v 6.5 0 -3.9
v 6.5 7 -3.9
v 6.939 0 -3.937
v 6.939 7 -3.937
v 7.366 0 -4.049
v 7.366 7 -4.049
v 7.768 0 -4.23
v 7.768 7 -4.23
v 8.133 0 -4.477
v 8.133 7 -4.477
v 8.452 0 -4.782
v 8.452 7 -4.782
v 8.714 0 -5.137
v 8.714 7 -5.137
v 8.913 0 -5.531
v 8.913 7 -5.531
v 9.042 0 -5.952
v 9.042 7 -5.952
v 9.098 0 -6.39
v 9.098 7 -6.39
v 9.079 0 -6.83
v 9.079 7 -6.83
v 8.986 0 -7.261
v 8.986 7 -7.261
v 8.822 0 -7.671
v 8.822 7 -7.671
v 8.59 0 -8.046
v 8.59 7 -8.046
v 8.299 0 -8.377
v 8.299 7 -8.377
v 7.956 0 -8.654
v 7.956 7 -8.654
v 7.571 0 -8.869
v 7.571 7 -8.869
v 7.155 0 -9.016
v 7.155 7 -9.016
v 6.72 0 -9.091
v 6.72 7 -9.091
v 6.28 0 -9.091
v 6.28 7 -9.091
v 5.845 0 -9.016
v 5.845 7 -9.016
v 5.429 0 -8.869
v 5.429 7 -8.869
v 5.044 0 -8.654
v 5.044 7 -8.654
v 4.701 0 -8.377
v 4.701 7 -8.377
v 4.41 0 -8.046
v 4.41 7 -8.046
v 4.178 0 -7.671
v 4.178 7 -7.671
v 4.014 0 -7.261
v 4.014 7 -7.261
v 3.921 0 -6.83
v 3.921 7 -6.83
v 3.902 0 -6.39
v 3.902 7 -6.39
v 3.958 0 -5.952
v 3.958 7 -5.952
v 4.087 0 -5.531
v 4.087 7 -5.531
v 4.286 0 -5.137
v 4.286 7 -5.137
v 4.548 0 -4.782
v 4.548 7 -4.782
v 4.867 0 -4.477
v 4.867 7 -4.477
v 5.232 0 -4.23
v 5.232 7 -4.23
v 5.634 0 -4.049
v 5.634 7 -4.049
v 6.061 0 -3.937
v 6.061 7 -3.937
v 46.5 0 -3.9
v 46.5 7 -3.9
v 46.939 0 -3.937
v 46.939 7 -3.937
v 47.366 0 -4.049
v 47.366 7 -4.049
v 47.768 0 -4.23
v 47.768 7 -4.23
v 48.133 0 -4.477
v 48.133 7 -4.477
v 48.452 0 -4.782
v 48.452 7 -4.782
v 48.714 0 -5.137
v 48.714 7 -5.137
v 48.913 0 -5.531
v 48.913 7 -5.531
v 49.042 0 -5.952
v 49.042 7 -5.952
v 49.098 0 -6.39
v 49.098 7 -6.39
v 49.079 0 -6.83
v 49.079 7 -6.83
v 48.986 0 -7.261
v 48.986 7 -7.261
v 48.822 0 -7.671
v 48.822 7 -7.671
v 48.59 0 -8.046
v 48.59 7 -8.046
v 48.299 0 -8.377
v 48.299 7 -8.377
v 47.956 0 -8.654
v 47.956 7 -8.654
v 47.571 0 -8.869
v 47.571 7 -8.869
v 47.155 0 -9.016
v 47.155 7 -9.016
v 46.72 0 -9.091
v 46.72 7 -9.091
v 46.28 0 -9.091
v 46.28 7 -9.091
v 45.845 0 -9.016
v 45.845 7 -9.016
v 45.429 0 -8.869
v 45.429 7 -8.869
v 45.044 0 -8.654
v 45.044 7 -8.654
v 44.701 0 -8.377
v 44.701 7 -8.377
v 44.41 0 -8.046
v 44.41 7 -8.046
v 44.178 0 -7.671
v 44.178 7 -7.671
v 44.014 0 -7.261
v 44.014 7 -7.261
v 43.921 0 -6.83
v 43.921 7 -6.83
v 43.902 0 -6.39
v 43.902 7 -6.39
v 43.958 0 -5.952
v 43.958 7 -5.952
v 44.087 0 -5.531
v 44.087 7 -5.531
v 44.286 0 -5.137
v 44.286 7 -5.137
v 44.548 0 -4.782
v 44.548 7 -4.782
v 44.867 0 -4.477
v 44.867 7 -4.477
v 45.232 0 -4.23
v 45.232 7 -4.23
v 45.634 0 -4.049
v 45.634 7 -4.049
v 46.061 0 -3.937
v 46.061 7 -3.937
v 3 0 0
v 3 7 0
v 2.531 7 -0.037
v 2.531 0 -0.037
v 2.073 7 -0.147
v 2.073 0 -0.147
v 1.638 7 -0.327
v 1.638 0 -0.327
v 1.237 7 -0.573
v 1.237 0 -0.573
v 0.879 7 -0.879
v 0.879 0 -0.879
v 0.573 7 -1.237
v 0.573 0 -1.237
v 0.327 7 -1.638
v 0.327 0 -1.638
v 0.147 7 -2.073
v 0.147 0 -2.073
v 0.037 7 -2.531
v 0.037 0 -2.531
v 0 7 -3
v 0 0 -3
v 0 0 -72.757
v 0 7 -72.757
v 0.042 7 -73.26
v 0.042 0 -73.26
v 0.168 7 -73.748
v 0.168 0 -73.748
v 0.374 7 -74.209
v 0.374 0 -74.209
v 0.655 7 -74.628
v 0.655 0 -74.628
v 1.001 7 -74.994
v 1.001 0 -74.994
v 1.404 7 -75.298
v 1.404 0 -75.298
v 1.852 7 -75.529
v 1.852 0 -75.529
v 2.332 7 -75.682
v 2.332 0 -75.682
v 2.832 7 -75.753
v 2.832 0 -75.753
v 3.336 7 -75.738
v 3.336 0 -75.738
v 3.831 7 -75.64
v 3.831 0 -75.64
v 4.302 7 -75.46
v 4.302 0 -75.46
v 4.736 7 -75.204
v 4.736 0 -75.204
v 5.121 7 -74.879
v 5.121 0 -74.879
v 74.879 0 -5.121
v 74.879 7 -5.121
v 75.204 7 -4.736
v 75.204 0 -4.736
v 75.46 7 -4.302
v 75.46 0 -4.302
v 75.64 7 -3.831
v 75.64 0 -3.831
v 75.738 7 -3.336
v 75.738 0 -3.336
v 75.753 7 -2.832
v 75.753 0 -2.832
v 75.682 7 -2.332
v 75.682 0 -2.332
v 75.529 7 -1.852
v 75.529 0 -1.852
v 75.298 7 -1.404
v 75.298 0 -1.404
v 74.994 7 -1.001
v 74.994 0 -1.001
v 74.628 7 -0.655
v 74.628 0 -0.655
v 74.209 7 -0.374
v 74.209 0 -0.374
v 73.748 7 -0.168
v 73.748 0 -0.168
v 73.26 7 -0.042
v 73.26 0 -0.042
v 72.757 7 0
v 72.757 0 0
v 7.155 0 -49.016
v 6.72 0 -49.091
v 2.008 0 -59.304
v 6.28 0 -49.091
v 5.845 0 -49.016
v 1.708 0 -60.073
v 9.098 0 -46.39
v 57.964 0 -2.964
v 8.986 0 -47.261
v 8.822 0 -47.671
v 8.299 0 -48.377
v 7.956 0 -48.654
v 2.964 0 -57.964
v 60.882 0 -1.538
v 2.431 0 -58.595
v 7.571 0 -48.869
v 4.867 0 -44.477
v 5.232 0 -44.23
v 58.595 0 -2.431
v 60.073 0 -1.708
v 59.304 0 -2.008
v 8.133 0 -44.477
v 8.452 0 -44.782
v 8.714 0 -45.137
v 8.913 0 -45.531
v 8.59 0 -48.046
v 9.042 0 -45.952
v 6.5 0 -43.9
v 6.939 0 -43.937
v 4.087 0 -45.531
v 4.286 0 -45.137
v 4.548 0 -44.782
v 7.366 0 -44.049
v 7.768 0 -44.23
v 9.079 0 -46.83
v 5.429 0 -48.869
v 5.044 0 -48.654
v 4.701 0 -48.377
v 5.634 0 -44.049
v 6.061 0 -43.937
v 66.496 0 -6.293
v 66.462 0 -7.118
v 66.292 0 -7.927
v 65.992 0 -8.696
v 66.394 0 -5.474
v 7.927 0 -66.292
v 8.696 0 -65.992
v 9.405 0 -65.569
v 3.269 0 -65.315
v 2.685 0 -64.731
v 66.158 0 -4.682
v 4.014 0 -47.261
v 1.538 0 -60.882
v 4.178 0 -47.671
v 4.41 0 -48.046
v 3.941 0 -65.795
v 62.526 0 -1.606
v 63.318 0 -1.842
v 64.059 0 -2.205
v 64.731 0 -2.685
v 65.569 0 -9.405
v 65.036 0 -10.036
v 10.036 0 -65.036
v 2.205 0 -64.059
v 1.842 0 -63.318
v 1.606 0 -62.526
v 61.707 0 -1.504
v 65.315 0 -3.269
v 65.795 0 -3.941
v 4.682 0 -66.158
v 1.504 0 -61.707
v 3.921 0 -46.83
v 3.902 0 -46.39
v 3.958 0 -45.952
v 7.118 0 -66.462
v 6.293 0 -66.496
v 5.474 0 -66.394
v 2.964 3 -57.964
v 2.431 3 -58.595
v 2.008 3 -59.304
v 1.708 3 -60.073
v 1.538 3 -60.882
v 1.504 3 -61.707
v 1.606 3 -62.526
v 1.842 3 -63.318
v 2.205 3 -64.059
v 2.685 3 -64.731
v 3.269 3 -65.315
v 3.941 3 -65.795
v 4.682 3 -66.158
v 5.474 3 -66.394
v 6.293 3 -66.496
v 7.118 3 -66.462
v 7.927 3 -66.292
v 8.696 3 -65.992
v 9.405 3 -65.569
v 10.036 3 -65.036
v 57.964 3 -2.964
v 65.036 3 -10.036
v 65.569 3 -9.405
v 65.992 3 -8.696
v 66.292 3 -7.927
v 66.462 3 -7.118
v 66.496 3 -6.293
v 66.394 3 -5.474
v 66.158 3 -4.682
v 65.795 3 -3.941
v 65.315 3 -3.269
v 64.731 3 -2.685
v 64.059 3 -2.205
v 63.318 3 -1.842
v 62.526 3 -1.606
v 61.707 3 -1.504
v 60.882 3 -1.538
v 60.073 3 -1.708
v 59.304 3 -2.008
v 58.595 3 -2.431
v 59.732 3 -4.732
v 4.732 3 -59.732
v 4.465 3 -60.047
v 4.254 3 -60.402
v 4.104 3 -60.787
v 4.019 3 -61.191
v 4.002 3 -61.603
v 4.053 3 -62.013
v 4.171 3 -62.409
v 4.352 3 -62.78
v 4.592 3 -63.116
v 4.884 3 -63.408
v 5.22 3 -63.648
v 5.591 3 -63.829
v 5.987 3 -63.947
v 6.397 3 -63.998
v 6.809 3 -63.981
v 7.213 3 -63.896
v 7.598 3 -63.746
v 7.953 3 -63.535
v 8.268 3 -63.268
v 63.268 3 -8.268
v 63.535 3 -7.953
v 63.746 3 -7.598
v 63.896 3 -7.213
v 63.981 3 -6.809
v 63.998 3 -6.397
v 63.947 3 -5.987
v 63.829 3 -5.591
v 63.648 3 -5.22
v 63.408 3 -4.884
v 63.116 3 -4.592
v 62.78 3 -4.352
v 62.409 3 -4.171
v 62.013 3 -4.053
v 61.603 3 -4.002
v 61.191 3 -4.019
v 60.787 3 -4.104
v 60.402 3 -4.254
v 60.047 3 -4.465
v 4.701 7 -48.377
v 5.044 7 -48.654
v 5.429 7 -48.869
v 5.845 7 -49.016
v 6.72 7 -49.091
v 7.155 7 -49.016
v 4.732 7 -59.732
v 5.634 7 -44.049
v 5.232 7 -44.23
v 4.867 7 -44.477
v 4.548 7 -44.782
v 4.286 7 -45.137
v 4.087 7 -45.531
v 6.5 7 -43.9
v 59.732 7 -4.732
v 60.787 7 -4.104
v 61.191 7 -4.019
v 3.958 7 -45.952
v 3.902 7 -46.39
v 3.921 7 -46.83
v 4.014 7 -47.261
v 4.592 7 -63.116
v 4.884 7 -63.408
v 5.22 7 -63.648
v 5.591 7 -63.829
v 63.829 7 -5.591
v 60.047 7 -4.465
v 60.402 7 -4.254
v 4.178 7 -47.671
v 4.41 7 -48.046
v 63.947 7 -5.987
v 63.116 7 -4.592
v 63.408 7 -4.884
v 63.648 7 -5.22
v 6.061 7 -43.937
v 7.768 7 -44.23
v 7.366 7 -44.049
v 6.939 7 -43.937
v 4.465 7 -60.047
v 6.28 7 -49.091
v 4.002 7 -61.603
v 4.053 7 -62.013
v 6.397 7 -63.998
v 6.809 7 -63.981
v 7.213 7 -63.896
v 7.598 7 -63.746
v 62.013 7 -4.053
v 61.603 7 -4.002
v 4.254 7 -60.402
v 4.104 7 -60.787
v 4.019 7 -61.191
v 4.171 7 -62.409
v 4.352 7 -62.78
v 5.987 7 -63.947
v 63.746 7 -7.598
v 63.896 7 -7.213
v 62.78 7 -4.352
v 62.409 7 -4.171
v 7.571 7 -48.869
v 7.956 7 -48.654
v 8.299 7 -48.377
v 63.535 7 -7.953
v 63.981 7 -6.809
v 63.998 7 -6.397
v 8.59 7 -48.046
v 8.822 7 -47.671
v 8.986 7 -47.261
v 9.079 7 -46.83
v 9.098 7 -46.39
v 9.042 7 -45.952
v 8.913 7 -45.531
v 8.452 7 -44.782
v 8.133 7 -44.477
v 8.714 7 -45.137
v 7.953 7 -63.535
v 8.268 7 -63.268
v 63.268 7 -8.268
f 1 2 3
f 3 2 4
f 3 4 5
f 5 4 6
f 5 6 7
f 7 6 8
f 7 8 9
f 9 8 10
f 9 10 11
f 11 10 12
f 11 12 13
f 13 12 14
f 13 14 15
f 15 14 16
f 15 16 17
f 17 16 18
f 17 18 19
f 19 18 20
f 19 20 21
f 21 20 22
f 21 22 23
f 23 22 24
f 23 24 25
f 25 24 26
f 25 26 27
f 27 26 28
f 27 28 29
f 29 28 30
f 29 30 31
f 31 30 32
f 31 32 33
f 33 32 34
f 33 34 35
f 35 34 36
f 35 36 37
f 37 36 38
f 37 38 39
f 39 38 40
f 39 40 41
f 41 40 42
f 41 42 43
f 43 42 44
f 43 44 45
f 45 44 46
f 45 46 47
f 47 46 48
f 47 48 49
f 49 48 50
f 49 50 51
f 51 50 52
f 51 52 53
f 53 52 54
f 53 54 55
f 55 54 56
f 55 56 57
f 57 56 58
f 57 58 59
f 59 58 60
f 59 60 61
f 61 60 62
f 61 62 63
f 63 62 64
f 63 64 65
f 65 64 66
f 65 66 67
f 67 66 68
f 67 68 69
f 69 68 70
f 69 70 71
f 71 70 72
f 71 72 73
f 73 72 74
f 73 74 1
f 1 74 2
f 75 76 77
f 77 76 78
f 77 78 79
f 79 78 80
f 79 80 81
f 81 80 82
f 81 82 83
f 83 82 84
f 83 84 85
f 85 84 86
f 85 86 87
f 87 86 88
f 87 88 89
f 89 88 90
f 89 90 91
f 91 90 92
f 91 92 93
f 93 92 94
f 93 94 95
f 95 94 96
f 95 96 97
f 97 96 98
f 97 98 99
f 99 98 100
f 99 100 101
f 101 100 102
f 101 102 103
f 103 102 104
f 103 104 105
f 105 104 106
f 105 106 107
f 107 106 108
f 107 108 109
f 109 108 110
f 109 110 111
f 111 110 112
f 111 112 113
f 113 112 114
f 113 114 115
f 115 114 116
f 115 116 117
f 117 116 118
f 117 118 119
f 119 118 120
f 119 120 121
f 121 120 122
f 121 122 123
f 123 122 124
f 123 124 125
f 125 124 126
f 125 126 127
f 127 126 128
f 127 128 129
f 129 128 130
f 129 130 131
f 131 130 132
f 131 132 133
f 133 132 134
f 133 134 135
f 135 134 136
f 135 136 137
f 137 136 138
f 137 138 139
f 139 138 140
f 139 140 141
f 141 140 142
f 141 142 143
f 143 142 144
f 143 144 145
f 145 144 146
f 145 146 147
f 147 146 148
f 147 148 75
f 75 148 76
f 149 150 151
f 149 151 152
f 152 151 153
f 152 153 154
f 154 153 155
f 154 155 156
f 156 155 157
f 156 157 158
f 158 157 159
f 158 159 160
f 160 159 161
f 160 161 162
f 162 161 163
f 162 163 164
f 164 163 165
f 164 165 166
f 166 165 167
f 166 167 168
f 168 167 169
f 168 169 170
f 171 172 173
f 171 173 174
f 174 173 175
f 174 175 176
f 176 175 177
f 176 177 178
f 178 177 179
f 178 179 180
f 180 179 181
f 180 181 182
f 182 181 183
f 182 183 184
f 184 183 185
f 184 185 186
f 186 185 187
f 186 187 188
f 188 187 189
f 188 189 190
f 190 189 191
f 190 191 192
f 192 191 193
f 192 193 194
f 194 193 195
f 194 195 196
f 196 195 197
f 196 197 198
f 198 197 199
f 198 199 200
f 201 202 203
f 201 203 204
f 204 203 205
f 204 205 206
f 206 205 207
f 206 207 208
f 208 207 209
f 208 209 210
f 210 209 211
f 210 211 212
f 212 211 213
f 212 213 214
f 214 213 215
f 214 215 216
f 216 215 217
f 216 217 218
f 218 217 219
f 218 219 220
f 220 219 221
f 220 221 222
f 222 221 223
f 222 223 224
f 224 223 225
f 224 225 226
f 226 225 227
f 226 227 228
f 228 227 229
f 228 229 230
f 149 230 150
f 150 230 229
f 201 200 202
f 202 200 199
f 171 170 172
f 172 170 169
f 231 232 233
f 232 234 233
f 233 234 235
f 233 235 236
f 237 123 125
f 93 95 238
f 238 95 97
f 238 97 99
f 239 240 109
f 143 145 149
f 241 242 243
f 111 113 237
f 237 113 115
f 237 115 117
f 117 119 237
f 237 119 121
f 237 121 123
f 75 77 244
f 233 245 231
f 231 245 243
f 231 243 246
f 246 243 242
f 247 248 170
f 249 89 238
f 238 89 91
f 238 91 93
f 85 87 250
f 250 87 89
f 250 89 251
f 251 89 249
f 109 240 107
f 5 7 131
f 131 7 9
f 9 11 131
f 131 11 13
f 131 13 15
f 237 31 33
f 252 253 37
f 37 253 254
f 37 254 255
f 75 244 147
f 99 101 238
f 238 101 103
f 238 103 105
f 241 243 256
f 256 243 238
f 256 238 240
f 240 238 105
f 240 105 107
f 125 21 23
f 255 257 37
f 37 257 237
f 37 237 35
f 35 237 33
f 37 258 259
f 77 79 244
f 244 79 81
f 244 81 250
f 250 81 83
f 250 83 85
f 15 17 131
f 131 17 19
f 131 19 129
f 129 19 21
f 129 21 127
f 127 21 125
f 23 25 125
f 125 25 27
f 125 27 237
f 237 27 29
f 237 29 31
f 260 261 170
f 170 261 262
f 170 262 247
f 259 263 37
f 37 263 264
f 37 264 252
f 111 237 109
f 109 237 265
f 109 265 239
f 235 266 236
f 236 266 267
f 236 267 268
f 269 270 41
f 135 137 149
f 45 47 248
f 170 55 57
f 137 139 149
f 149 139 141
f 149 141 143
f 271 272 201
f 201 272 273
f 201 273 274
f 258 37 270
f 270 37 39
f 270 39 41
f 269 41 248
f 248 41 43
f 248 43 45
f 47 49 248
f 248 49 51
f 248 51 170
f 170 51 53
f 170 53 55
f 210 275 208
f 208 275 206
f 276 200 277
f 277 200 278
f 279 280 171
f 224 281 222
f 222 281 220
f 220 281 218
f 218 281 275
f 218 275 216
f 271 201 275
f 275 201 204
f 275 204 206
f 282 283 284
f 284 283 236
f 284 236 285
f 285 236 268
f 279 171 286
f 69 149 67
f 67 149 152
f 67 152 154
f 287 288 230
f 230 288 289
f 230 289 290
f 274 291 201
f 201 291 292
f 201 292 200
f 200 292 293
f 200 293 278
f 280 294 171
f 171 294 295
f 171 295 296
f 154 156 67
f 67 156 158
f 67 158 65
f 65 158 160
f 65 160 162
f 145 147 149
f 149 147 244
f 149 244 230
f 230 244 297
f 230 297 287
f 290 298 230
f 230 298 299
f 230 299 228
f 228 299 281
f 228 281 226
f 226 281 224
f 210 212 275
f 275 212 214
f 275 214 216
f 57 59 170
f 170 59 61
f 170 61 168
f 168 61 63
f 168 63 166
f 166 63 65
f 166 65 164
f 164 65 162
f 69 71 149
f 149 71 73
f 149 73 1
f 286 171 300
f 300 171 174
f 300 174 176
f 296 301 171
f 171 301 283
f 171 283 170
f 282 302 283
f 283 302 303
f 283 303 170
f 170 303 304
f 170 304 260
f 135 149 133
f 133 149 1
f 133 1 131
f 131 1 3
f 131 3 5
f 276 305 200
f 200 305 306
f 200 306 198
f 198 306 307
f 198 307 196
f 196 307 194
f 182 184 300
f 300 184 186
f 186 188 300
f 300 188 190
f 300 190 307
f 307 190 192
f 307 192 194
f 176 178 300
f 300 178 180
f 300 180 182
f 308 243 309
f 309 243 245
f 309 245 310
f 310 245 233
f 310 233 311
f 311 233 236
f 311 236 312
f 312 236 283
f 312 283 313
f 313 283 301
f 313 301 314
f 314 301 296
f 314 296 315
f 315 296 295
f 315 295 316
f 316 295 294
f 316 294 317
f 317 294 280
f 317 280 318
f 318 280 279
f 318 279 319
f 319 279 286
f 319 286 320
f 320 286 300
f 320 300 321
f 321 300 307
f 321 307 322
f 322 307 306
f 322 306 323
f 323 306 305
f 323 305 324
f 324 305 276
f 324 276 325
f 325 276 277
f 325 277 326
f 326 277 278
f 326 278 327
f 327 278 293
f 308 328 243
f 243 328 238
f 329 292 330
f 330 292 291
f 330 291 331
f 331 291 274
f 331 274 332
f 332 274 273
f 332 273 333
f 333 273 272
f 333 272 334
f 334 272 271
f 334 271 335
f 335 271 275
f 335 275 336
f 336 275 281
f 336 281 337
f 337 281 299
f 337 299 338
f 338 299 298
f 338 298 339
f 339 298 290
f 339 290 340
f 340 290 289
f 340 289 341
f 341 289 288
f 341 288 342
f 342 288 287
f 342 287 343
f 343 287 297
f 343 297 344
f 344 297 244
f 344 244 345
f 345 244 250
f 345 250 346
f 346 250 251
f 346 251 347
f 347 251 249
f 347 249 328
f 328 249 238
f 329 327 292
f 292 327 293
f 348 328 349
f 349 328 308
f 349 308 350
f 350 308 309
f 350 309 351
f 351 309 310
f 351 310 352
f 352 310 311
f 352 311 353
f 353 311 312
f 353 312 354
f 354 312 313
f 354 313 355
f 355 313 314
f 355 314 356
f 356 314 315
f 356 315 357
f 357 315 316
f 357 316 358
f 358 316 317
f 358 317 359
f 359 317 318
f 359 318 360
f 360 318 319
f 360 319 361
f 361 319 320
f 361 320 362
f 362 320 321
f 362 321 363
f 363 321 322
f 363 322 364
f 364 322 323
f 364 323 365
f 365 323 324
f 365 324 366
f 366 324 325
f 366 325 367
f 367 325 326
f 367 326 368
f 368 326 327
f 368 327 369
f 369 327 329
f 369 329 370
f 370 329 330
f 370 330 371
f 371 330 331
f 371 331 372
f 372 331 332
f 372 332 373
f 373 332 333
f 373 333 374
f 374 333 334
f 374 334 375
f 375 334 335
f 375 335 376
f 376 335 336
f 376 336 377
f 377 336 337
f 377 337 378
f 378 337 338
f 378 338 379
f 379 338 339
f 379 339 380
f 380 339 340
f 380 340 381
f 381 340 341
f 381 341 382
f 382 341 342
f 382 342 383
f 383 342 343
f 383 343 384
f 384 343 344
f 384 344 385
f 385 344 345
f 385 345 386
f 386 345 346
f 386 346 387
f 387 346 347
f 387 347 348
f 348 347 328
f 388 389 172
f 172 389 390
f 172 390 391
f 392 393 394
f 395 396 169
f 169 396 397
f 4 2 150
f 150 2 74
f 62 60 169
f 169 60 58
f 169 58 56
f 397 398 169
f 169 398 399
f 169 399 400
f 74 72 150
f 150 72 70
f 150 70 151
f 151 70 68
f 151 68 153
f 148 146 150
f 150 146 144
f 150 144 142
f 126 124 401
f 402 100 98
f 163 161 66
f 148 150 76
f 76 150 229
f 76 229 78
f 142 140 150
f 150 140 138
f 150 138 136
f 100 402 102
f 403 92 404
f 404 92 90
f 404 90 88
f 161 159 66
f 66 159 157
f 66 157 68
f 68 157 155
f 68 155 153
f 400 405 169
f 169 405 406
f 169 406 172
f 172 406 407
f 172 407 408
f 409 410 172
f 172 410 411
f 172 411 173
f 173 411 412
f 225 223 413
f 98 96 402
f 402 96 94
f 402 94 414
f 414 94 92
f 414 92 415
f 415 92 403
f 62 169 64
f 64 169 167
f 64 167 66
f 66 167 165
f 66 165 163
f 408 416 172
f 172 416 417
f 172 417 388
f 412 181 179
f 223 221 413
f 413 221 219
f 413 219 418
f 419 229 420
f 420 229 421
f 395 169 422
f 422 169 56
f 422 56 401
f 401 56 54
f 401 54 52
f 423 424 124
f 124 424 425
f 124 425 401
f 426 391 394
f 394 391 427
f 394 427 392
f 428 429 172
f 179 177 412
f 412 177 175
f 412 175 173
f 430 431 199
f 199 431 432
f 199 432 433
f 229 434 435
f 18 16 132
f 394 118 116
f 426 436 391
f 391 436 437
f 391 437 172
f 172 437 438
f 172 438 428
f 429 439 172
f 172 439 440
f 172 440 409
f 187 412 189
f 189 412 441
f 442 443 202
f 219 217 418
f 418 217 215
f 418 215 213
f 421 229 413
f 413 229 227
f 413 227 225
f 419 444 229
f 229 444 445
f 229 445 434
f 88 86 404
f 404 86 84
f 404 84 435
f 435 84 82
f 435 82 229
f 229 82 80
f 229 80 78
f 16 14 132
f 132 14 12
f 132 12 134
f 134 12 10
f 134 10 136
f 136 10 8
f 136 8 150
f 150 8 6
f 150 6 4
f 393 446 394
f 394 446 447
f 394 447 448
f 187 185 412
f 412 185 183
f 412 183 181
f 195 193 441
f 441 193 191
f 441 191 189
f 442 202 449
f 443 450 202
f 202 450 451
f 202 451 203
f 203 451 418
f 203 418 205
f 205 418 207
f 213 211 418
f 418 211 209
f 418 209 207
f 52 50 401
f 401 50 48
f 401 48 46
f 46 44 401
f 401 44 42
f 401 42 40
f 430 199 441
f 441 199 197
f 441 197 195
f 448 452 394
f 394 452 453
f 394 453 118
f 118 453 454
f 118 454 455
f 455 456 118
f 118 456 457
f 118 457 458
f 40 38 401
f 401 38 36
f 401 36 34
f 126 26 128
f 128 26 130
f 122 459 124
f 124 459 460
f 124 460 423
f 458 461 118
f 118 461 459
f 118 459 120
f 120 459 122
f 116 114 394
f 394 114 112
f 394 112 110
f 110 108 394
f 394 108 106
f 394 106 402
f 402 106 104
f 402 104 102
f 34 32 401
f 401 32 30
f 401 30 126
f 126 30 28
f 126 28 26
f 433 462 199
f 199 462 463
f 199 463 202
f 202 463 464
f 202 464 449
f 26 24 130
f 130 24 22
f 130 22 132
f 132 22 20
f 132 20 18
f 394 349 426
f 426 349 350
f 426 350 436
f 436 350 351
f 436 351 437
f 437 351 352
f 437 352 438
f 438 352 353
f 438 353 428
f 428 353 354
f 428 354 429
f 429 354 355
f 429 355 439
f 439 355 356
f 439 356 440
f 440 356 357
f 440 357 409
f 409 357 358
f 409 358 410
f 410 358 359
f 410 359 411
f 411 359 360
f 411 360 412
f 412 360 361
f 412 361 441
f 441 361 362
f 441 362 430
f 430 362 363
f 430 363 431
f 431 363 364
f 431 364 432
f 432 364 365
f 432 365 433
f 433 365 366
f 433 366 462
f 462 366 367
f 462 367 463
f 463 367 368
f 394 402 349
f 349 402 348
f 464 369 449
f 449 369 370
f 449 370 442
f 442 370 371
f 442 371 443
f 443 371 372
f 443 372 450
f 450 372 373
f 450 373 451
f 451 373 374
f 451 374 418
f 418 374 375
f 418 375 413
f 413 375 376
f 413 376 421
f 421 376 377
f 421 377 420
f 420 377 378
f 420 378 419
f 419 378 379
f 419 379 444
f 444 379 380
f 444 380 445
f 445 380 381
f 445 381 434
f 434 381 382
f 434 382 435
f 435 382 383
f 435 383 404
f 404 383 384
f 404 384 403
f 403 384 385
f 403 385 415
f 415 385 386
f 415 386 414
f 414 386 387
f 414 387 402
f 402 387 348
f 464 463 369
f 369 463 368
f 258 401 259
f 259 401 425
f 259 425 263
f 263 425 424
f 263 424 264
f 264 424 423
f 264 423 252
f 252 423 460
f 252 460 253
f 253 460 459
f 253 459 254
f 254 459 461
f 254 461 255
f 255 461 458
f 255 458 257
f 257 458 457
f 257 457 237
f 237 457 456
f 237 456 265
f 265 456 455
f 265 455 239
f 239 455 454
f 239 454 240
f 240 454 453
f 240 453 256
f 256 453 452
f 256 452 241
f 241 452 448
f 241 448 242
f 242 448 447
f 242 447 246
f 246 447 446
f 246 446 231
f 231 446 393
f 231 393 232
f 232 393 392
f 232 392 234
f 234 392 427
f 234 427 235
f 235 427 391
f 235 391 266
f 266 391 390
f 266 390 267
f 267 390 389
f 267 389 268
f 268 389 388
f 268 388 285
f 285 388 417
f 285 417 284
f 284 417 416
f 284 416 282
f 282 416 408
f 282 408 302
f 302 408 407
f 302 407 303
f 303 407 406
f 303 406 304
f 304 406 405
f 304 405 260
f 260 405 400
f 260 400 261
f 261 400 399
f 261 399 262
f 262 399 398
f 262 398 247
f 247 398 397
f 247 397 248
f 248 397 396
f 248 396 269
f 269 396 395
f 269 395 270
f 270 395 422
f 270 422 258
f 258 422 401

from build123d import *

# Parameters (mm, degrees)
EXTRUDE_1_DEPTH      = 10
SKETCH_5_R           = 2.6
CUT_EXTRUDE_3_DEPTH  = 10
FILLET_5_R           = 3
FILLET_6_R           = 3
FILLET_7_R           = 3
SKETCH_7_R           = 5.5
CUT_EXTRUDE_4_DEPTH  = 5
SKETCH_12_R          = 2.553682631
CUT_EXTRUDE_9_DEPTH  = 9
EXTRUDE_2_DEPTH      = 5
CUT_EXTRUDE_START    = 5
SKETCH_14_R          = 5.5
CUT_EXTRUDE_12_DEPTH = 5
EXTRUDE_START        = 5
EXTRUDE_6_DEPTH      = 5
SKETCH_22_R          = 5.5
EXTRUDE_7_DEPTH      = 5
SKETCH_24_R          = 5.5
CUT_EXTRUDE_14_DEPTH = 3
SKETCH_25_R          = 2.65
CUT_EXTRUDE_15_DEPTH = 3
SKETCH_26_R          = 2.65
CUT_EXTRUDE_16_DEPTH = 5
SKETCH_29_R          = 2.65
EXTRUDE_8_DEPTH      = 10
EXTRUDE_START_2      = 3
SKETCH_30_R          = 5.5
EXTRUDE_9_DEPTH      = 3
CUT_EXTRUDE_18_DEPTH = 3
SKETCH_33_R          = 5.5
SKETCH_33_R_2        = 2.6
EXTRUDE_10_DEPTH     = 5
SKETCH_34_W          = 118.655960463
SKETCH_34_H          = 108.474675719
CUT_EXTRUDE_20_DEPTH = 3
CUT_EXTRUDE_21_DEPTH = 108.211729676
SKETCH_36_R          = 2.6
CUT_EXTRUDE_23_DEPTH = 108.365520444


with BuildPart() as part:
    # 草图1 → 凸台-拉伸1 (new body)
    with BuildSketch(Plane(origin=(0, 0, 0), x_dir=(1, 0, 0), z_dir=(0, 1, 0))):
        Polygon((0, 0), (0, 80), (80, 0), align=None)
    extrude(amount=EXTRUDE_1_DEPTH)

    # 草图5 → 切除-拉伸3 (cut)
    with BuildSketch(Plane(origin=(0, 10, 0), x_dir=(1, 0, 0), z_dir=(0, 1, 0))):
        with Locations(Location((6.5, 6.5, 0), (0, 0, 270))):
            Circle(SKETCH_5_R)
        with Locations(Location((6.5, 46.5, 0), (0, 0, 270))):
            Circle(SKETCH_5_R)
        with Locations(Location((46.5, 6.5, 0), (0, 0, 270))):
            Circle(SKETCH_5_R)
    extrude(amount=-CUT_EXTRUDE_3_DEPTH, mode=Mode.SUBTRACT)

    # 圆角5
    fillet_5_edges = [part.edges().sort_by_distance(p)[0] for p in [
        (80, 5, 0),
    ]]
    fillet(fillet_5_edges, radius=FILLET_5_R)

    # 圆角6
    fillet_6_edges = [part.edges().sort_by_distance(p)[0] for p in [
        (0, 5, -80),
    ]]
    fillet(fillet_6_edges, radius=FILLET_6_R)

    # 圆角7
    fillet_7_edges = [part.edges().sort_by_distance(p)[0] for p in [
        (0, 5, 0),
    ]]
    fillet(fillet_7_edges, radius=FILLET_7_R)

    # 草图7 → 切除-拉伸4 (cut)
    with BuildSketch(Plane(origin=(0, 10, 0), x_dir=(1, 0, 0), z_dir=(0, 1, 0))):
        with Locations(Location((6.5, 6.5, 0), (0, 0, 270))):
            Circle(SKETCH_7_R)
        with Locations(Location((6.5, 46.5, 0), (0, 0, 270))):
            Circle(SKETCH_7_R)
        with Locations(Location((46.5, 6.5, 0), (0, 0, 270))):
            Circle(SKETCH_7_R)
    extrude(amount=-CUT_EXTRUDE_4_DEPTH, mode=Mode.SUBTRACT)

    # 草图12 → 切除-拉伸9 (cut)
    with BuildSketch(Plane.XZ):
        with Locations((8.5, -46.5)):
            Circle(SKETCH_12_R)
    extrude(amount=-CUT_EXTRUDE_9_DEPTH, mode=Mode.SUBTRACT)

    # 草图13 → 凸台-拉伸2 (add)
    with BuildSketch(Plane.XZ):
        with BuildLine():
            ThreePointArc((7.559676255, -48.87425488), (5.946317369, -46.5), (7.559676255, -44.12574512))
            ThreePointArc((7.559676255, -44.12574512), (3.9, -46.5), (7.559676255, -48.87425488))
        make_face()
    extrude(amount=-EXTRUDE_2_DEPTH)

    # 草图14 → 切除-拉伸12 (cut)
    with BuildSketch(Plane(origin=(0, 5, 0), x_dir=(1, 0, 0), z_dir=(0, 1, 0)).offset(CUT_EXTRUDE_START)):
        with Locations((8.5, 46.5)):
            Circle(SKETCH_14_R)
        with Locations((6.5, 46.5)):
            Circle(SKETCH_14_R)
    extrude(amount=-CUT_EXTRUDE_12_DEPTH, mode=Mode.SUBTRACT)

    # 草图21 → 凸台-拉伸6 (add)
    with BuildSketch(Plane(origin=(0, 5, 0), x_dir=(1, 0, 0), z_dir=(0, 1, 0)).offset(EXTRUDE_START)):
        with BuildLine():
            ThreePointArc((7.5, 41.091673087), (3, 46.5), (7.5, 51.908326913))
            ThreePointArc((7.5, 51.908326913), (1, 46.5), (7.5, 41.091673087))
        make_face()
    extrude(amount=-EXTRUDE_6_DEPTH)

    # 草图22 → 凸台-拉伸7 (add)
    with BuildSketch(Plane(origin=(0, 5, 0), x_dir=(1, 0, 0), z_dir=(0, 1, 0)).offset(EXTRUDE_START)):
        with Locations((8.5, 46.5)):
            Circle(SKETCH_22_R)
    extrude(amount=-EXTRUDE_7_DEPTH)

    # 草图24 → 切除-拉伸14 (cut)
    with BuildSketch(Plane(origin=(0, 10, 0), x_dir=(1, 0, 0), z_dir=(0, 1, 0))):
        with Locations(Location((8.5, 46.5, 0), (0, 0, 270))):
            Circle(SKETCH_24_R)
    extrude(amount=-CUT_EXTRUDE_14_DEPTH, mode=Mode.SUBTRACT)

    # 草图25 → 切除-拉伸15 (cut)
    with BuildSketch(Plane.XZ.offset(-5)):
        with Locations(Location((8.5, -46.5, 0), (0, 0, 270))):
            Circle(SKETCH_25_R)
    extrude(amount=-CUT_EXTRUDE_15_DEPTH, mode=Mode.SUBTRACT)

    # 草图26 → 切除-拉伸16 (cut)
    with BuildSketch(Plane.XZ):
        with Locations(Location((8.5, -46.5, 0), (0, 0, 270))):
            Circle(SKETCH_26_R)
    extrude(amount=-CUT_EXTRUDE_16_DEPTH, mode=Mode.SUBTRACT)

    # 草图29 → 凸台-拉伸8 (add)
    with BuildSketch(Plane.XZ):
        with Locations(Location((8.5, -46.5, 0), (0, 0, 270))):
            Circle(SKETCH_29_R)
    extrude(amount=-EXTRUDE_8_DEPTH)

    # 草图30 → 凸台-拉伸9 (add)
    with BuildSketch(Plane(origin=(0, 7, 0), x_dir=(1, 0, 0), z_dir=(0, 1, 0)).offset(EXTRUDE_START_2)):
        with Locations((8.5, 46.5)):
            Circle(SKETCH_30_R)
    extrude(amount=-EXTRUDE_9_DEPTH)

    # 草图2 → 切除-拉伸18 (cut)
    with BuildSketch(Plane.XZ):
        with BuildLine():
            ThreePointArc((6.5, -56.5), (8.413417162, -56.880602337), (10.035533906, -57.964466094))
            Line((10.035533906, -57.964466094), (57.964466094, -10.035533906))
            ThreePointArc((57.964466094, -10.035533906), (56.880602337, -8.413417162), (56.5, -6.5))
            Line((56.5, -6.5), (54.428932188, -6.5))
            Line((54.428932188, -6.5), (6.5, -54.428932188))
            Line((6.5, -54.428932188), (6.5, -56.5))
        make_face()
        with BuildLine():
            Line((57.964466094, -10.035533906), (10.035533906, -57.964466094))
            ThreePointArc((10.035533906, -57.964466094), (11.119397663, -59.586582838), (11.5, -61.5))
            ThreePointArc((11.5, -61.5), (11.119397663, -63.413417162), (10.035533906, -65.035533906))
            Line((10.035533906, -65.035533906), (65.035533906, -10.035533906))
            ThreePointArc((65.035533906, -10.035533906), (61.5, -11.5), (57.964466094, -10.035533906))
        make_face()
        with BuildLine():
            Line((6.5, -66.5), (6.5, -61.5))
            Line((6.5, -61.5), (6.5, -56.5))
            ThreePointArc((6.5, -56.5), (4.586582838, -56.880602337), (2.964466094, -57.964466094))
            ThreePointArc((2.964466094, -57.964466094), (1.880602337, -63.413417162), (6.5, -66.5))
        make_face()
        with BuildLine():
            Line((6.5, -56.5), (6.5, -61.5))
            Line((6.5, -61.5), (10.035533906, -57.964466094))
            ThreePointArc((10.035533906, -57.964466094), (8.413417162, -56.880602337), (6.5, -56.5))
        make_face()
        with BuildLine():
            Line((10.035533906, -57.964466094), (6.5, -61.5))
            Line((6.5, -61.5), (6.5, -66.5))
            ThreePointArc((6.5, -66.5), (8.413417162, -66.119397663), (10.035533906, -65.035533906))
            ThreePointArc((10.035533906, -65.035533906), (11.119397663, -63.413417162), (11.5, -61.5))
            ThreePointArc((11.5, -61.5), (11.119397663, -59.586582838), (10.035533906, -57.964466094))
        make_face()
        with BuildLine():
            Line((6.5, -56.5), (6.5, -61.5))
            Line((6.5, -61.5), (10.035533906, -57.964466094))
            ThreePointArc((10.035533906, -57.964466094), (8.413417162, -56.880602337), (6.5, -56.5))
        make_face()
        with BuildLine():
            Line((10.035533906, -57.964466094), (6.5, -61.5))
            Line((6.5, -61.5), (6.5, -66.5))
            ThreePointArc((6.5, -66.5), (8.413417162, -66.119397663), (10.035533906, -65.035533906))
            ThreePointArc((10.035533906, -65.035533906), (11.119397663, -63.413417162), (11.5, -61.5))
            ThreePointArc((11.5, -61.5), (11.119397663, -59.586582838), (10.035533906, -57.964466094))
        make_face()
        with BuildLine():
            ThreePointArc((2.964466094, -57.964466094), (4.586582838, -56.880602337), (6.5, -56.5))
            Line((6.5, -56.5), (6.5, -54.428932188))
            Line((6.5, -54.428932188), (2.964466094, -57.964466094))
        make_face()
        with BuildLine():
            Line((54.428932188, -6.5), (56.5, -6.5))
            ThreePointArc((56.5, -6.5), (56.880602337, -4.586582838), (57.964466094, -2.964466094))
            Line((57.964466094, -2.964466094), (54.428932188, -6.5))
        make_face()
        with BuildLine():
            Line((56.5, -6.5), (61.5, -6.5))
            Line((61.5, -6.5), (66.5, -6.5))
            ThreePointArc((66.5, -6.5), (63.413417162, -1.880602337), (57.964466094, -2.964466094))
            ThreePointArc((57.964466094, -2.964466094), (56.880602337, -4.586582838), (56.5, -6.5))
        make_face()
        with BuildLine():
            ThreePointArc((56.5, -6.5), (56.880602337, -8.413417162), (57.964466094, -10.035533906))
            Line((57.964466094, -10.035533906), (61.5, -6.5))
            Line((61.5, -6.5), (56.5, -6.5))
        make_face()
        with BuildLine():
            Line((61.5, -6.5), (57.964466094, -10.035533906))
            ThreePointArc((57.964466094, -10.035533906), (61.5, -11.5), (65.035533906, -10.035533906))
            ThreePointArc((65.035533906, -10.035533906), (66.119397663, -8.413417162), (66.5, -6.5))
            Line((66.5, -6.5), (61.5, -6.5))
        make_face()
        with BuildLine():
            ThreePointArc((56.5, -6.5), (56.880602337, -8.413417162), (57.964466094, -10.035533906))
            Line((57.964466094, -10.035533906), (61.5, -6.5))
            Line((61.5, -6.5), (56.5, -6.5))
        make_face()
        with BuildLine():
            Line((61.5, -6.5), (57.964466094, -10.035533906))
            ThreePointArc((57.964466094, -10.035533906), (61.5, -11.5), (65.035533906, -10.035533906))
            ThreePointArc((65.035533906, -10.035533906), (66.119397663, -8.413417162), (66.5, -6.5))
            Line((66.5, -6.5), (61.5, -6.5))
        make_face()
    extrude(amount=-CUT_EXTRUDE_18_DEPTH, mode=Mode.SUBTRACT)

    # 草图33 → 凸台-拉伸10 (add)
    # profile 1 of 2: a face of its own
    with BuildSketch(Plane(origin=(0, 10, 0), x_dir=(1, 0, 0), z_dir=(0, 1, 0))):
        with Locations((6.5, 6.5)):
            Circle(SKETCH_33_R)
        with Locations(Location((6.5, 6.5, 0), (0, 0, 270))):
            Circle(SKETCH_33_R_2, mode=Mode.SUBTRACT)
    # profile 2 of 2: a face of its own
    with BuildSketch(Plane(origin=(0, 10, 0), x_dir=(1, 0, 0), z_dir=(0, 1, 0))):
        with Locations((46.5, 6.5)):
            Circle(SKETCH_33_R)
        with Locations(Location((46.5, 6.5, 0), (0, 0, 270))):
            Circle(SKETCH_33_R_2, mode=Mode.SUBTRACT)
    extrude(amount=-EXTRUDE_10_DEPTH)

    # 草图34 → 切除-拉伸20 (cut)
    with BuildSketch(Plane(origin=(0, 10, 0), x_dir=(1, 0, 0), z_dir=(0, 1, 0))):
        with Locations((37.4387476, 33.290816779)):
            Rectangle(SKETCH_34_W, SKETCH_34_H)
    extrude(amount=-CUT_EXTRUDE_20_DEPTH, mode=Mode.SUBTRACT)

    # 草图35 → 切除-拉伸21 (cut, through all)
    with BuildSketch(Plane.XZ.offset(-3)):
        with BuildLine():
            Line((8.267766953, -63.267766953), (63.267766953, -8.267766953))
            ThreePointArc((63.267766953, -8.267766953), (63.267766953, -4.732233047), (59.732233047, -4.732233047))
            Line((59.732233047, -4.732233047), (4.732233047, -59.732233047))
            ThreePointArc((4.732233047, -59.732233047), (4.732233047, -63.267766953), (8.267766953, -63.267766953))
        make_face()
    extrude(amount=-CUT_EXTRUDE_21_DEPTH, mode=Mode.SUBTRACT)

    # 草图36 → 切除-拉伸23 (cut, through all)
    with BuildSketch(Plane(origin=(0, 7, 0), x_dir=(1, 0, 0), z_dir=(0, 1, 0))):
        with Locations(Location((6.5, 46.5, 0), (0, 0, 270))):
            Circle(SKETCH_36_R)
    extrude(amount=-CUT_EXTRUDE_23_DEPTH, mode=Mode.SUBTRACT)


solid = part.part
